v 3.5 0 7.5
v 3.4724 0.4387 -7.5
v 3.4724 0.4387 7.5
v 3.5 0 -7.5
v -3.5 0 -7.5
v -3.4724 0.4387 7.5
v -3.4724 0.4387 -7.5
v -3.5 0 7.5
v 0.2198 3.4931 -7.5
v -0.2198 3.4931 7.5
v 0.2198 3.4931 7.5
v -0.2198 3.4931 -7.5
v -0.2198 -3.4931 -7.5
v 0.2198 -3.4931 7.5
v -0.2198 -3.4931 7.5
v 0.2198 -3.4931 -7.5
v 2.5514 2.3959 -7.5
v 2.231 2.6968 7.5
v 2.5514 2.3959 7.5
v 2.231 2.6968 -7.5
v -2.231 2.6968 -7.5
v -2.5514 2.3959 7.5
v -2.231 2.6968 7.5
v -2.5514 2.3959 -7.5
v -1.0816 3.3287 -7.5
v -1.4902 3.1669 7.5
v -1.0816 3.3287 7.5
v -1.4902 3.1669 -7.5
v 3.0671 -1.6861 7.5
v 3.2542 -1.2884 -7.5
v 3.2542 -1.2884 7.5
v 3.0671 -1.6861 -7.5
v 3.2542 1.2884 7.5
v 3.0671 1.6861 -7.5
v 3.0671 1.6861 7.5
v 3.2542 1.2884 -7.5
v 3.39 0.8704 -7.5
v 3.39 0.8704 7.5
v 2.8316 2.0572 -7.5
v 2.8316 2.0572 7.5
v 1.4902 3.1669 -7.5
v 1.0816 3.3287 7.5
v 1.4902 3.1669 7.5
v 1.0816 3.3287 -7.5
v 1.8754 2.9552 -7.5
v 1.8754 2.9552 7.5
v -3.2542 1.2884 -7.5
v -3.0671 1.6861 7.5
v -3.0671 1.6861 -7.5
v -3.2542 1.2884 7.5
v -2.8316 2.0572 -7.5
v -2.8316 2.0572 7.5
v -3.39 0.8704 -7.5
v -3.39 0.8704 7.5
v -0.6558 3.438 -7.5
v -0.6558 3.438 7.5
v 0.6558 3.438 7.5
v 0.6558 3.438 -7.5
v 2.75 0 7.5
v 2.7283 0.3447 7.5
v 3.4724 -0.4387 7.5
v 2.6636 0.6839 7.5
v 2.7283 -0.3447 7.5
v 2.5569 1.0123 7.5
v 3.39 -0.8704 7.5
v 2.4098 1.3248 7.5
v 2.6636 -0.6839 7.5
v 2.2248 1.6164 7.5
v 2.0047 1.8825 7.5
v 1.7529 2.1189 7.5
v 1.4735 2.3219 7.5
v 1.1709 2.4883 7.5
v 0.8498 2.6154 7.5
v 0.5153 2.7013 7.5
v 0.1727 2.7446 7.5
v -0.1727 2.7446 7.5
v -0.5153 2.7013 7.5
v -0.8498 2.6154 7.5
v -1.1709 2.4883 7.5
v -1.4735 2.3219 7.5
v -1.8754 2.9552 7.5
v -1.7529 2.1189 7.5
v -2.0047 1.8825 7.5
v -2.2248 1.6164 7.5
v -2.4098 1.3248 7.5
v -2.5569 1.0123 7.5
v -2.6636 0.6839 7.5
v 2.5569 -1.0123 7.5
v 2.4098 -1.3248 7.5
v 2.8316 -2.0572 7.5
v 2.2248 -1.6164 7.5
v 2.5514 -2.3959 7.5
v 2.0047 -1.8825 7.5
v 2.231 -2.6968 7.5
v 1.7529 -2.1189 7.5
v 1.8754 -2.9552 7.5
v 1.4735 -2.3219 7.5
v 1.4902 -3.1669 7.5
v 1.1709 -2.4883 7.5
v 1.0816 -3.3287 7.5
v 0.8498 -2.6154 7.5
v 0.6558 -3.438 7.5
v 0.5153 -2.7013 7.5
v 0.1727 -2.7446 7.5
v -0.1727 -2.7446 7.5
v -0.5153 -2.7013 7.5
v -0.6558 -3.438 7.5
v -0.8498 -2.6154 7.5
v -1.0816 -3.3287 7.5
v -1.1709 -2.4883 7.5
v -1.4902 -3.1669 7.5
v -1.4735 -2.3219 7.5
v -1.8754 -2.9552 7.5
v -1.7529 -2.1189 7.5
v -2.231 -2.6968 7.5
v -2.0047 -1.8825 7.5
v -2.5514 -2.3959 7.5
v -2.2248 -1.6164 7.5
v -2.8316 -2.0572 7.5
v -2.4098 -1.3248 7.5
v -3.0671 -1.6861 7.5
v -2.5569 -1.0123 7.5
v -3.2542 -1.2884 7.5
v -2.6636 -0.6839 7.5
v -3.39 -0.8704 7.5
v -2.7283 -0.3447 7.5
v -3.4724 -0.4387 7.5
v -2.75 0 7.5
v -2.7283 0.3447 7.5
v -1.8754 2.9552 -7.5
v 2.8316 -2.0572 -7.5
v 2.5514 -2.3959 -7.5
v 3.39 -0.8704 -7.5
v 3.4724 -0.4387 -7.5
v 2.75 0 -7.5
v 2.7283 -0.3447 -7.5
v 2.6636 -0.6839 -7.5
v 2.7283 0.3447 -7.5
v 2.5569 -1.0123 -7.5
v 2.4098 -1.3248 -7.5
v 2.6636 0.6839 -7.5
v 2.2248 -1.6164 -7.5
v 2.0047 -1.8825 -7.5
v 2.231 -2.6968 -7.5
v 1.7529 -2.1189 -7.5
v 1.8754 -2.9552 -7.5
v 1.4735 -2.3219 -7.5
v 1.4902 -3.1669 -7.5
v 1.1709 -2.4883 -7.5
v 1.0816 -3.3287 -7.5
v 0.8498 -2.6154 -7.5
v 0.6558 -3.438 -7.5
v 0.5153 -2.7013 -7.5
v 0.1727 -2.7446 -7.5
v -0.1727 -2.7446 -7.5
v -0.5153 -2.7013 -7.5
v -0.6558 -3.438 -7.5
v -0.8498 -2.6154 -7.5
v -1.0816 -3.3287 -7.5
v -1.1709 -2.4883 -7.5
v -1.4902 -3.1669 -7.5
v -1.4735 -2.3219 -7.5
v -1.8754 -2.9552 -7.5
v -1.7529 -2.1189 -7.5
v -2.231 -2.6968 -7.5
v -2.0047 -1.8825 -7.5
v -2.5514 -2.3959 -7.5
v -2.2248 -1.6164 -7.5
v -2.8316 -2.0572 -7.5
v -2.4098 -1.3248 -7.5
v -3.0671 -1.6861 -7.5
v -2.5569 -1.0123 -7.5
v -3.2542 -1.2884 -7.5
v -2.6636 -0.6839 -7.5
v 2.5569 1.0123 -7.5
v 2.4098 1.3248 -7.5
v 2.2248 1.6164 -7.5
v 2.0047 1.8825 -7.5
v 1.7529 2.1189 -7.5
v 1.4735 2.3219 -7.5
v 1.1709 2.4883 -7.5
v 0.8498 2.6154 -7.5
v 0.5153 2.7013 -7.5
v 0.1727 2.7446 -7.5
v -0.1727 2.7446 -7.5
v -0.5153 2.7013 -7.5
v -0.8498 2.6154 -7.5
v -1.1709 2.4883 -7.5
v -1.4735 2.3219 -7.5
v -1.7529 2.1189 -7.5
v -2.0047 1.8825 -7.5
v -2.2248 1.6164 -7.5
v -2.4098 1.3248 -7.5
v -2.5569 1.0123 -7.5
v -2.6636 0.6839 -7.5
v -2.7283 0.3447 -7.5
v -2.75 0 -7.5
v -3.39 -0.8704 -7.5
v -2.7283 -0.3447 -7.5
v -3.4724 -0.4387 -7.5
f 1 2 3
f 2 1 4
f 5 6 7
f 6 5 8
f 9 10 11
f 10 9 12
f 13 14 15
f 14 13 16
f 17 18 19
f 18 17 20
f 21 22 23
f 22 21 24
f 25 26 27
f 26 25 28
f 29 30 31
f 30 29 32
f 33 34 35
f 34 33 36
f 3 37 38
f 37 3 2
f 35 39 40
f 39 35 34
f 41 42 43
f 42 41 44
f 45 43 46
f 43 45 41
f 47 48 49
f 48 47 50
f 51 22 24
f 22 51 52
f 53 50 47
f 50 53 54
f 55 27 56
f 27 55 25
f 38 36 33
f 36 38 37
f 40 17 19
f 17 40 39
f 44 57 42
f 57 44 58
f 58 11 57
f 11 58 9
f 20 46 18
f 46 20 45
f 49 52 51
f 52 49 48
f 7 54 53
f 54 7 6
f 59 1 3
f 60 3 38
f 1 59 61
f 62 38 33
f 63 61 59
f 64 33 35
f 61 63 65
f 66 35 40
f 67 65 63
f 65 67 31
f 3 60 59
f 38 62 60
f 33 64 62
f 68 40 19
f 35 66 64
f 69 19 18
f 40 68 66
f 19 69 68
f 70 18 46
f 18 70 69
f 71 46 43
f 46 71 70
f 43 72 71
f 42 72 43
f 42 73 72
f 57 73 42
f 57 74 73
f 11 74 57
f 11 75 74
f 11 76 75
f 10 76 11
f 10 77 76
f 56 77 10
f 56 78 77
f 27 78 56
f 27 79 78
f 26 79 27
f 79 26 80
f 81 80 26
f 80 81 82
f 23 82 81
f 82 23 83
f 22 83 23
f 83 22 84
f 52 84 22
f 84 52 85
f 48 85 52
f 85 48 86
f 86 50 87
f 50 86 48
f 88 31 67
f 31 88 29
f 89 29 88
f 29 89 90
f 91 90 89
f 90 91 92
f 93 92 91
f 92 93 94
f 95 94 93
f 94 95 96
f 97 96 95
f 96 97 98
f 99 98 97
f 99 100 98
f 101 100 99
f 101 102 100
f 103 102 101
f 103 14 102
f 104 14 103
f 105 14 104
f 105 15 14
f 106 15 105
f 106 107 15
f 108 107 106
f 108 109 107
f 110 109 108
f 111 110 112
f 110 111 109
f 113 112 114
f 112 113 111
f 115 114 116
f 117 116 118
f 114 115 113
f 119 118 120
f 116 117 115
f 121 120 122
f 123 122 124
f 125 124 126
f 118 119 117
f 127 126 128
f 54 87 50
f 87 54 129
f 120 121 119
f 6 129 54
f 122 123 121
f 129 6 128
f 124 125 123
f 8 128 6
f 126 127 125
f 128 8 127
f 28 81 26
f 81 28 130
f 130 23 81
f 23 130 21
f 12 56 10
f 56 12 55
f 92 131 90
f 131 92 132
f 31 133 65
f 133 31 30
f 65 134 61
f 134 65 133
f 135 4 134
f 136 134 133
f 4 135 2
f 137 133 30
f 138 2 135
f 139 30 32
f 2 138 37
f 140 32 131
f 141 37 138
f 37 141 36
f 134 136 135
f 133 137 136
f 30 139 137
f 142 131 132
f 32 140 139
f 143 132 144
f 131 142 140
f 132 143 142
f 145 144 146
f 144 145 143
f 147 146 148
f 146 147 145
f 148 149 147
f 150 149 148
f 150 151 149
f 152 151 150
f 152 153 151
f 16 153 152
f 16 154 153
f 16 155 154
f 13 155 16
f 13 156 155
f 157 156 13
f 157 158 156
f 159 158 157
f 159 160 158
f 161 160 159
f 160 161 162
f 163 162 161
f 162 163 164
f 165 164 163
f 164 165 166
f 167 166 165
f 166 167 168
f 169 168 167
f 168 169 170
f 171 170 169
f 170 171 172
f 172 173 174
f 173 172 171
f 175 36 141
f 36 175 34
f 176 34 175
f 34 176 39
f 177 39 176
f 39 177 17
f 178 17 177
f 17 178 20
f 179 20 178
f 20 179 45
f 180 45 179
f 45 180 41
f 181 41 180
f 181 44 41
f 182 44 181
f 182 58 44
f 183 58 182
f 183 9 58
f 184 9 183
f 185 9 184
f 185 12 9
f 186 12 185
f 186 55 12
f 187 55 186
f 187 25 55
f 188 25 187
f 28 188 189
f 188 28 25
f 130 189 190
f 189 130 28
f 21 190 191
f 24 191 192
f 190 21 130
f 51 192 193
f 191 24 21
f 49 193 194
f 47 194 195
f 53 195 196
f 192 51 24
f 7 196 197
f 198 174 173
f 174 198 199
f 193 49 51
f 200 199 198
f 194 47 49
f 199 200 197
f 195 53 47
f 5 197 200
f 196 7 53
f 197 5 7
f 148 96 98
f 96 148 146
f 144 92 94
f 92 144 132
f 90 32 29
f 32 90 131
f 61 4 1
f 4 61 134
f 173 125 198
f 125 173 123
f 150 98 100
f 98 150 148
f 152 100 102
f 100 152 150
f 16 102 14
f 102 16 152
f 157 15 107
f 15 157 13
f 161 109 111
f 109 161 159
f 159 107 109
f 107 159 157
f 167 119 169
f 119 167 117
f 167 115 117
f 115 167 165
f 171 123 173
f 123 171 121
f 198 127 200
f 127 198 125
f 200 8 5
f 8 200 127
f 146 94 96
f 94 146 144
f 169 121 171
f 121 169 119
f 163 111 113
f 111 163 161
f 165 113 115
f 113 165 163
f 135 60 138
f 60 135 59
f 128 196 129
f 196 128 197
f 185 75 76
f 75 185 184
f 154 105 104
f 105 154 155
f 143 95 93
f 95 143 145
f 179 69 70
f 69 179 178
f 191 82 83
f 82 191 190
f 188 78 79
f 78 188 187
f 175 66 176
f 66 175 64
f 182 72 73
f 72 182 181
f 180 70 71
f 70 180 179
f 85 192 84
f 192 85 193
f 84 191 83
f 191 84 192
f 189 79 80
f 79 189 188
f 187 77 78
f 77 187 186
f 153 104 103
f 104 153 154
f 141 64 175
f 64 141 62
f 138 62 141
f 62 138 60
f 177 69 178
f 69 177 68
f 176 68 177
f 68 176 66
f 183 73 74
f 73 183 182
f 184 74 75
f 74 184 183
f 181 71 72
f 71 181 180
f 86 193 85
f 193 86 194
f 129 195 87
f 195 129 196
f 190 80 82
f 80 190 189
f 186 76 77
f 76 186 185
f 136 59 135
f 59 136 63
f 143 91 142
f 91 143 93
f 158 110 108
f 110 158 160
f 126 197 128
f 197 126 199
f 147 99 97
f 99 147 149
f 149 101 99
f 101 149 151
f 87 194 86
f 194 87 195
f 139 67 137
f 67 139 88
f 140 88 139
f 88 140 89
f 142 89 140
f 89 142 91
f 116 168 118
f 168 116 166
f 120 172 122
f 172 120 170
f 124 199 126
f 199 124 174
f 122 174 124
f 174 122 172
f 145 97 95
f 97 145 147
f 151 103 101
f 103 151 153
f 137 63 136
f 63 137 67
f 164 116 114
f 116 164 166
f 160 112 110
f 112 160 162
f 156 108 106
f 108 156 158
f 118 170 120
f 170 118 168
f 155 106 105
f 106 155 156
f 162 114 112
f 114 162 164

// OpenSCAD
$fn = 50;


difference() {
	union() {
		translate(v = [0, 0, -7.5000000000]) {
			cylinder(h = 15, r = 3.5000000000);
		}
	}
	union() {
		translate(v = [0, 0, -100.0000000000]) {
			cylinder(h = 200, r = 2.7500000000);
		}
	}
}
